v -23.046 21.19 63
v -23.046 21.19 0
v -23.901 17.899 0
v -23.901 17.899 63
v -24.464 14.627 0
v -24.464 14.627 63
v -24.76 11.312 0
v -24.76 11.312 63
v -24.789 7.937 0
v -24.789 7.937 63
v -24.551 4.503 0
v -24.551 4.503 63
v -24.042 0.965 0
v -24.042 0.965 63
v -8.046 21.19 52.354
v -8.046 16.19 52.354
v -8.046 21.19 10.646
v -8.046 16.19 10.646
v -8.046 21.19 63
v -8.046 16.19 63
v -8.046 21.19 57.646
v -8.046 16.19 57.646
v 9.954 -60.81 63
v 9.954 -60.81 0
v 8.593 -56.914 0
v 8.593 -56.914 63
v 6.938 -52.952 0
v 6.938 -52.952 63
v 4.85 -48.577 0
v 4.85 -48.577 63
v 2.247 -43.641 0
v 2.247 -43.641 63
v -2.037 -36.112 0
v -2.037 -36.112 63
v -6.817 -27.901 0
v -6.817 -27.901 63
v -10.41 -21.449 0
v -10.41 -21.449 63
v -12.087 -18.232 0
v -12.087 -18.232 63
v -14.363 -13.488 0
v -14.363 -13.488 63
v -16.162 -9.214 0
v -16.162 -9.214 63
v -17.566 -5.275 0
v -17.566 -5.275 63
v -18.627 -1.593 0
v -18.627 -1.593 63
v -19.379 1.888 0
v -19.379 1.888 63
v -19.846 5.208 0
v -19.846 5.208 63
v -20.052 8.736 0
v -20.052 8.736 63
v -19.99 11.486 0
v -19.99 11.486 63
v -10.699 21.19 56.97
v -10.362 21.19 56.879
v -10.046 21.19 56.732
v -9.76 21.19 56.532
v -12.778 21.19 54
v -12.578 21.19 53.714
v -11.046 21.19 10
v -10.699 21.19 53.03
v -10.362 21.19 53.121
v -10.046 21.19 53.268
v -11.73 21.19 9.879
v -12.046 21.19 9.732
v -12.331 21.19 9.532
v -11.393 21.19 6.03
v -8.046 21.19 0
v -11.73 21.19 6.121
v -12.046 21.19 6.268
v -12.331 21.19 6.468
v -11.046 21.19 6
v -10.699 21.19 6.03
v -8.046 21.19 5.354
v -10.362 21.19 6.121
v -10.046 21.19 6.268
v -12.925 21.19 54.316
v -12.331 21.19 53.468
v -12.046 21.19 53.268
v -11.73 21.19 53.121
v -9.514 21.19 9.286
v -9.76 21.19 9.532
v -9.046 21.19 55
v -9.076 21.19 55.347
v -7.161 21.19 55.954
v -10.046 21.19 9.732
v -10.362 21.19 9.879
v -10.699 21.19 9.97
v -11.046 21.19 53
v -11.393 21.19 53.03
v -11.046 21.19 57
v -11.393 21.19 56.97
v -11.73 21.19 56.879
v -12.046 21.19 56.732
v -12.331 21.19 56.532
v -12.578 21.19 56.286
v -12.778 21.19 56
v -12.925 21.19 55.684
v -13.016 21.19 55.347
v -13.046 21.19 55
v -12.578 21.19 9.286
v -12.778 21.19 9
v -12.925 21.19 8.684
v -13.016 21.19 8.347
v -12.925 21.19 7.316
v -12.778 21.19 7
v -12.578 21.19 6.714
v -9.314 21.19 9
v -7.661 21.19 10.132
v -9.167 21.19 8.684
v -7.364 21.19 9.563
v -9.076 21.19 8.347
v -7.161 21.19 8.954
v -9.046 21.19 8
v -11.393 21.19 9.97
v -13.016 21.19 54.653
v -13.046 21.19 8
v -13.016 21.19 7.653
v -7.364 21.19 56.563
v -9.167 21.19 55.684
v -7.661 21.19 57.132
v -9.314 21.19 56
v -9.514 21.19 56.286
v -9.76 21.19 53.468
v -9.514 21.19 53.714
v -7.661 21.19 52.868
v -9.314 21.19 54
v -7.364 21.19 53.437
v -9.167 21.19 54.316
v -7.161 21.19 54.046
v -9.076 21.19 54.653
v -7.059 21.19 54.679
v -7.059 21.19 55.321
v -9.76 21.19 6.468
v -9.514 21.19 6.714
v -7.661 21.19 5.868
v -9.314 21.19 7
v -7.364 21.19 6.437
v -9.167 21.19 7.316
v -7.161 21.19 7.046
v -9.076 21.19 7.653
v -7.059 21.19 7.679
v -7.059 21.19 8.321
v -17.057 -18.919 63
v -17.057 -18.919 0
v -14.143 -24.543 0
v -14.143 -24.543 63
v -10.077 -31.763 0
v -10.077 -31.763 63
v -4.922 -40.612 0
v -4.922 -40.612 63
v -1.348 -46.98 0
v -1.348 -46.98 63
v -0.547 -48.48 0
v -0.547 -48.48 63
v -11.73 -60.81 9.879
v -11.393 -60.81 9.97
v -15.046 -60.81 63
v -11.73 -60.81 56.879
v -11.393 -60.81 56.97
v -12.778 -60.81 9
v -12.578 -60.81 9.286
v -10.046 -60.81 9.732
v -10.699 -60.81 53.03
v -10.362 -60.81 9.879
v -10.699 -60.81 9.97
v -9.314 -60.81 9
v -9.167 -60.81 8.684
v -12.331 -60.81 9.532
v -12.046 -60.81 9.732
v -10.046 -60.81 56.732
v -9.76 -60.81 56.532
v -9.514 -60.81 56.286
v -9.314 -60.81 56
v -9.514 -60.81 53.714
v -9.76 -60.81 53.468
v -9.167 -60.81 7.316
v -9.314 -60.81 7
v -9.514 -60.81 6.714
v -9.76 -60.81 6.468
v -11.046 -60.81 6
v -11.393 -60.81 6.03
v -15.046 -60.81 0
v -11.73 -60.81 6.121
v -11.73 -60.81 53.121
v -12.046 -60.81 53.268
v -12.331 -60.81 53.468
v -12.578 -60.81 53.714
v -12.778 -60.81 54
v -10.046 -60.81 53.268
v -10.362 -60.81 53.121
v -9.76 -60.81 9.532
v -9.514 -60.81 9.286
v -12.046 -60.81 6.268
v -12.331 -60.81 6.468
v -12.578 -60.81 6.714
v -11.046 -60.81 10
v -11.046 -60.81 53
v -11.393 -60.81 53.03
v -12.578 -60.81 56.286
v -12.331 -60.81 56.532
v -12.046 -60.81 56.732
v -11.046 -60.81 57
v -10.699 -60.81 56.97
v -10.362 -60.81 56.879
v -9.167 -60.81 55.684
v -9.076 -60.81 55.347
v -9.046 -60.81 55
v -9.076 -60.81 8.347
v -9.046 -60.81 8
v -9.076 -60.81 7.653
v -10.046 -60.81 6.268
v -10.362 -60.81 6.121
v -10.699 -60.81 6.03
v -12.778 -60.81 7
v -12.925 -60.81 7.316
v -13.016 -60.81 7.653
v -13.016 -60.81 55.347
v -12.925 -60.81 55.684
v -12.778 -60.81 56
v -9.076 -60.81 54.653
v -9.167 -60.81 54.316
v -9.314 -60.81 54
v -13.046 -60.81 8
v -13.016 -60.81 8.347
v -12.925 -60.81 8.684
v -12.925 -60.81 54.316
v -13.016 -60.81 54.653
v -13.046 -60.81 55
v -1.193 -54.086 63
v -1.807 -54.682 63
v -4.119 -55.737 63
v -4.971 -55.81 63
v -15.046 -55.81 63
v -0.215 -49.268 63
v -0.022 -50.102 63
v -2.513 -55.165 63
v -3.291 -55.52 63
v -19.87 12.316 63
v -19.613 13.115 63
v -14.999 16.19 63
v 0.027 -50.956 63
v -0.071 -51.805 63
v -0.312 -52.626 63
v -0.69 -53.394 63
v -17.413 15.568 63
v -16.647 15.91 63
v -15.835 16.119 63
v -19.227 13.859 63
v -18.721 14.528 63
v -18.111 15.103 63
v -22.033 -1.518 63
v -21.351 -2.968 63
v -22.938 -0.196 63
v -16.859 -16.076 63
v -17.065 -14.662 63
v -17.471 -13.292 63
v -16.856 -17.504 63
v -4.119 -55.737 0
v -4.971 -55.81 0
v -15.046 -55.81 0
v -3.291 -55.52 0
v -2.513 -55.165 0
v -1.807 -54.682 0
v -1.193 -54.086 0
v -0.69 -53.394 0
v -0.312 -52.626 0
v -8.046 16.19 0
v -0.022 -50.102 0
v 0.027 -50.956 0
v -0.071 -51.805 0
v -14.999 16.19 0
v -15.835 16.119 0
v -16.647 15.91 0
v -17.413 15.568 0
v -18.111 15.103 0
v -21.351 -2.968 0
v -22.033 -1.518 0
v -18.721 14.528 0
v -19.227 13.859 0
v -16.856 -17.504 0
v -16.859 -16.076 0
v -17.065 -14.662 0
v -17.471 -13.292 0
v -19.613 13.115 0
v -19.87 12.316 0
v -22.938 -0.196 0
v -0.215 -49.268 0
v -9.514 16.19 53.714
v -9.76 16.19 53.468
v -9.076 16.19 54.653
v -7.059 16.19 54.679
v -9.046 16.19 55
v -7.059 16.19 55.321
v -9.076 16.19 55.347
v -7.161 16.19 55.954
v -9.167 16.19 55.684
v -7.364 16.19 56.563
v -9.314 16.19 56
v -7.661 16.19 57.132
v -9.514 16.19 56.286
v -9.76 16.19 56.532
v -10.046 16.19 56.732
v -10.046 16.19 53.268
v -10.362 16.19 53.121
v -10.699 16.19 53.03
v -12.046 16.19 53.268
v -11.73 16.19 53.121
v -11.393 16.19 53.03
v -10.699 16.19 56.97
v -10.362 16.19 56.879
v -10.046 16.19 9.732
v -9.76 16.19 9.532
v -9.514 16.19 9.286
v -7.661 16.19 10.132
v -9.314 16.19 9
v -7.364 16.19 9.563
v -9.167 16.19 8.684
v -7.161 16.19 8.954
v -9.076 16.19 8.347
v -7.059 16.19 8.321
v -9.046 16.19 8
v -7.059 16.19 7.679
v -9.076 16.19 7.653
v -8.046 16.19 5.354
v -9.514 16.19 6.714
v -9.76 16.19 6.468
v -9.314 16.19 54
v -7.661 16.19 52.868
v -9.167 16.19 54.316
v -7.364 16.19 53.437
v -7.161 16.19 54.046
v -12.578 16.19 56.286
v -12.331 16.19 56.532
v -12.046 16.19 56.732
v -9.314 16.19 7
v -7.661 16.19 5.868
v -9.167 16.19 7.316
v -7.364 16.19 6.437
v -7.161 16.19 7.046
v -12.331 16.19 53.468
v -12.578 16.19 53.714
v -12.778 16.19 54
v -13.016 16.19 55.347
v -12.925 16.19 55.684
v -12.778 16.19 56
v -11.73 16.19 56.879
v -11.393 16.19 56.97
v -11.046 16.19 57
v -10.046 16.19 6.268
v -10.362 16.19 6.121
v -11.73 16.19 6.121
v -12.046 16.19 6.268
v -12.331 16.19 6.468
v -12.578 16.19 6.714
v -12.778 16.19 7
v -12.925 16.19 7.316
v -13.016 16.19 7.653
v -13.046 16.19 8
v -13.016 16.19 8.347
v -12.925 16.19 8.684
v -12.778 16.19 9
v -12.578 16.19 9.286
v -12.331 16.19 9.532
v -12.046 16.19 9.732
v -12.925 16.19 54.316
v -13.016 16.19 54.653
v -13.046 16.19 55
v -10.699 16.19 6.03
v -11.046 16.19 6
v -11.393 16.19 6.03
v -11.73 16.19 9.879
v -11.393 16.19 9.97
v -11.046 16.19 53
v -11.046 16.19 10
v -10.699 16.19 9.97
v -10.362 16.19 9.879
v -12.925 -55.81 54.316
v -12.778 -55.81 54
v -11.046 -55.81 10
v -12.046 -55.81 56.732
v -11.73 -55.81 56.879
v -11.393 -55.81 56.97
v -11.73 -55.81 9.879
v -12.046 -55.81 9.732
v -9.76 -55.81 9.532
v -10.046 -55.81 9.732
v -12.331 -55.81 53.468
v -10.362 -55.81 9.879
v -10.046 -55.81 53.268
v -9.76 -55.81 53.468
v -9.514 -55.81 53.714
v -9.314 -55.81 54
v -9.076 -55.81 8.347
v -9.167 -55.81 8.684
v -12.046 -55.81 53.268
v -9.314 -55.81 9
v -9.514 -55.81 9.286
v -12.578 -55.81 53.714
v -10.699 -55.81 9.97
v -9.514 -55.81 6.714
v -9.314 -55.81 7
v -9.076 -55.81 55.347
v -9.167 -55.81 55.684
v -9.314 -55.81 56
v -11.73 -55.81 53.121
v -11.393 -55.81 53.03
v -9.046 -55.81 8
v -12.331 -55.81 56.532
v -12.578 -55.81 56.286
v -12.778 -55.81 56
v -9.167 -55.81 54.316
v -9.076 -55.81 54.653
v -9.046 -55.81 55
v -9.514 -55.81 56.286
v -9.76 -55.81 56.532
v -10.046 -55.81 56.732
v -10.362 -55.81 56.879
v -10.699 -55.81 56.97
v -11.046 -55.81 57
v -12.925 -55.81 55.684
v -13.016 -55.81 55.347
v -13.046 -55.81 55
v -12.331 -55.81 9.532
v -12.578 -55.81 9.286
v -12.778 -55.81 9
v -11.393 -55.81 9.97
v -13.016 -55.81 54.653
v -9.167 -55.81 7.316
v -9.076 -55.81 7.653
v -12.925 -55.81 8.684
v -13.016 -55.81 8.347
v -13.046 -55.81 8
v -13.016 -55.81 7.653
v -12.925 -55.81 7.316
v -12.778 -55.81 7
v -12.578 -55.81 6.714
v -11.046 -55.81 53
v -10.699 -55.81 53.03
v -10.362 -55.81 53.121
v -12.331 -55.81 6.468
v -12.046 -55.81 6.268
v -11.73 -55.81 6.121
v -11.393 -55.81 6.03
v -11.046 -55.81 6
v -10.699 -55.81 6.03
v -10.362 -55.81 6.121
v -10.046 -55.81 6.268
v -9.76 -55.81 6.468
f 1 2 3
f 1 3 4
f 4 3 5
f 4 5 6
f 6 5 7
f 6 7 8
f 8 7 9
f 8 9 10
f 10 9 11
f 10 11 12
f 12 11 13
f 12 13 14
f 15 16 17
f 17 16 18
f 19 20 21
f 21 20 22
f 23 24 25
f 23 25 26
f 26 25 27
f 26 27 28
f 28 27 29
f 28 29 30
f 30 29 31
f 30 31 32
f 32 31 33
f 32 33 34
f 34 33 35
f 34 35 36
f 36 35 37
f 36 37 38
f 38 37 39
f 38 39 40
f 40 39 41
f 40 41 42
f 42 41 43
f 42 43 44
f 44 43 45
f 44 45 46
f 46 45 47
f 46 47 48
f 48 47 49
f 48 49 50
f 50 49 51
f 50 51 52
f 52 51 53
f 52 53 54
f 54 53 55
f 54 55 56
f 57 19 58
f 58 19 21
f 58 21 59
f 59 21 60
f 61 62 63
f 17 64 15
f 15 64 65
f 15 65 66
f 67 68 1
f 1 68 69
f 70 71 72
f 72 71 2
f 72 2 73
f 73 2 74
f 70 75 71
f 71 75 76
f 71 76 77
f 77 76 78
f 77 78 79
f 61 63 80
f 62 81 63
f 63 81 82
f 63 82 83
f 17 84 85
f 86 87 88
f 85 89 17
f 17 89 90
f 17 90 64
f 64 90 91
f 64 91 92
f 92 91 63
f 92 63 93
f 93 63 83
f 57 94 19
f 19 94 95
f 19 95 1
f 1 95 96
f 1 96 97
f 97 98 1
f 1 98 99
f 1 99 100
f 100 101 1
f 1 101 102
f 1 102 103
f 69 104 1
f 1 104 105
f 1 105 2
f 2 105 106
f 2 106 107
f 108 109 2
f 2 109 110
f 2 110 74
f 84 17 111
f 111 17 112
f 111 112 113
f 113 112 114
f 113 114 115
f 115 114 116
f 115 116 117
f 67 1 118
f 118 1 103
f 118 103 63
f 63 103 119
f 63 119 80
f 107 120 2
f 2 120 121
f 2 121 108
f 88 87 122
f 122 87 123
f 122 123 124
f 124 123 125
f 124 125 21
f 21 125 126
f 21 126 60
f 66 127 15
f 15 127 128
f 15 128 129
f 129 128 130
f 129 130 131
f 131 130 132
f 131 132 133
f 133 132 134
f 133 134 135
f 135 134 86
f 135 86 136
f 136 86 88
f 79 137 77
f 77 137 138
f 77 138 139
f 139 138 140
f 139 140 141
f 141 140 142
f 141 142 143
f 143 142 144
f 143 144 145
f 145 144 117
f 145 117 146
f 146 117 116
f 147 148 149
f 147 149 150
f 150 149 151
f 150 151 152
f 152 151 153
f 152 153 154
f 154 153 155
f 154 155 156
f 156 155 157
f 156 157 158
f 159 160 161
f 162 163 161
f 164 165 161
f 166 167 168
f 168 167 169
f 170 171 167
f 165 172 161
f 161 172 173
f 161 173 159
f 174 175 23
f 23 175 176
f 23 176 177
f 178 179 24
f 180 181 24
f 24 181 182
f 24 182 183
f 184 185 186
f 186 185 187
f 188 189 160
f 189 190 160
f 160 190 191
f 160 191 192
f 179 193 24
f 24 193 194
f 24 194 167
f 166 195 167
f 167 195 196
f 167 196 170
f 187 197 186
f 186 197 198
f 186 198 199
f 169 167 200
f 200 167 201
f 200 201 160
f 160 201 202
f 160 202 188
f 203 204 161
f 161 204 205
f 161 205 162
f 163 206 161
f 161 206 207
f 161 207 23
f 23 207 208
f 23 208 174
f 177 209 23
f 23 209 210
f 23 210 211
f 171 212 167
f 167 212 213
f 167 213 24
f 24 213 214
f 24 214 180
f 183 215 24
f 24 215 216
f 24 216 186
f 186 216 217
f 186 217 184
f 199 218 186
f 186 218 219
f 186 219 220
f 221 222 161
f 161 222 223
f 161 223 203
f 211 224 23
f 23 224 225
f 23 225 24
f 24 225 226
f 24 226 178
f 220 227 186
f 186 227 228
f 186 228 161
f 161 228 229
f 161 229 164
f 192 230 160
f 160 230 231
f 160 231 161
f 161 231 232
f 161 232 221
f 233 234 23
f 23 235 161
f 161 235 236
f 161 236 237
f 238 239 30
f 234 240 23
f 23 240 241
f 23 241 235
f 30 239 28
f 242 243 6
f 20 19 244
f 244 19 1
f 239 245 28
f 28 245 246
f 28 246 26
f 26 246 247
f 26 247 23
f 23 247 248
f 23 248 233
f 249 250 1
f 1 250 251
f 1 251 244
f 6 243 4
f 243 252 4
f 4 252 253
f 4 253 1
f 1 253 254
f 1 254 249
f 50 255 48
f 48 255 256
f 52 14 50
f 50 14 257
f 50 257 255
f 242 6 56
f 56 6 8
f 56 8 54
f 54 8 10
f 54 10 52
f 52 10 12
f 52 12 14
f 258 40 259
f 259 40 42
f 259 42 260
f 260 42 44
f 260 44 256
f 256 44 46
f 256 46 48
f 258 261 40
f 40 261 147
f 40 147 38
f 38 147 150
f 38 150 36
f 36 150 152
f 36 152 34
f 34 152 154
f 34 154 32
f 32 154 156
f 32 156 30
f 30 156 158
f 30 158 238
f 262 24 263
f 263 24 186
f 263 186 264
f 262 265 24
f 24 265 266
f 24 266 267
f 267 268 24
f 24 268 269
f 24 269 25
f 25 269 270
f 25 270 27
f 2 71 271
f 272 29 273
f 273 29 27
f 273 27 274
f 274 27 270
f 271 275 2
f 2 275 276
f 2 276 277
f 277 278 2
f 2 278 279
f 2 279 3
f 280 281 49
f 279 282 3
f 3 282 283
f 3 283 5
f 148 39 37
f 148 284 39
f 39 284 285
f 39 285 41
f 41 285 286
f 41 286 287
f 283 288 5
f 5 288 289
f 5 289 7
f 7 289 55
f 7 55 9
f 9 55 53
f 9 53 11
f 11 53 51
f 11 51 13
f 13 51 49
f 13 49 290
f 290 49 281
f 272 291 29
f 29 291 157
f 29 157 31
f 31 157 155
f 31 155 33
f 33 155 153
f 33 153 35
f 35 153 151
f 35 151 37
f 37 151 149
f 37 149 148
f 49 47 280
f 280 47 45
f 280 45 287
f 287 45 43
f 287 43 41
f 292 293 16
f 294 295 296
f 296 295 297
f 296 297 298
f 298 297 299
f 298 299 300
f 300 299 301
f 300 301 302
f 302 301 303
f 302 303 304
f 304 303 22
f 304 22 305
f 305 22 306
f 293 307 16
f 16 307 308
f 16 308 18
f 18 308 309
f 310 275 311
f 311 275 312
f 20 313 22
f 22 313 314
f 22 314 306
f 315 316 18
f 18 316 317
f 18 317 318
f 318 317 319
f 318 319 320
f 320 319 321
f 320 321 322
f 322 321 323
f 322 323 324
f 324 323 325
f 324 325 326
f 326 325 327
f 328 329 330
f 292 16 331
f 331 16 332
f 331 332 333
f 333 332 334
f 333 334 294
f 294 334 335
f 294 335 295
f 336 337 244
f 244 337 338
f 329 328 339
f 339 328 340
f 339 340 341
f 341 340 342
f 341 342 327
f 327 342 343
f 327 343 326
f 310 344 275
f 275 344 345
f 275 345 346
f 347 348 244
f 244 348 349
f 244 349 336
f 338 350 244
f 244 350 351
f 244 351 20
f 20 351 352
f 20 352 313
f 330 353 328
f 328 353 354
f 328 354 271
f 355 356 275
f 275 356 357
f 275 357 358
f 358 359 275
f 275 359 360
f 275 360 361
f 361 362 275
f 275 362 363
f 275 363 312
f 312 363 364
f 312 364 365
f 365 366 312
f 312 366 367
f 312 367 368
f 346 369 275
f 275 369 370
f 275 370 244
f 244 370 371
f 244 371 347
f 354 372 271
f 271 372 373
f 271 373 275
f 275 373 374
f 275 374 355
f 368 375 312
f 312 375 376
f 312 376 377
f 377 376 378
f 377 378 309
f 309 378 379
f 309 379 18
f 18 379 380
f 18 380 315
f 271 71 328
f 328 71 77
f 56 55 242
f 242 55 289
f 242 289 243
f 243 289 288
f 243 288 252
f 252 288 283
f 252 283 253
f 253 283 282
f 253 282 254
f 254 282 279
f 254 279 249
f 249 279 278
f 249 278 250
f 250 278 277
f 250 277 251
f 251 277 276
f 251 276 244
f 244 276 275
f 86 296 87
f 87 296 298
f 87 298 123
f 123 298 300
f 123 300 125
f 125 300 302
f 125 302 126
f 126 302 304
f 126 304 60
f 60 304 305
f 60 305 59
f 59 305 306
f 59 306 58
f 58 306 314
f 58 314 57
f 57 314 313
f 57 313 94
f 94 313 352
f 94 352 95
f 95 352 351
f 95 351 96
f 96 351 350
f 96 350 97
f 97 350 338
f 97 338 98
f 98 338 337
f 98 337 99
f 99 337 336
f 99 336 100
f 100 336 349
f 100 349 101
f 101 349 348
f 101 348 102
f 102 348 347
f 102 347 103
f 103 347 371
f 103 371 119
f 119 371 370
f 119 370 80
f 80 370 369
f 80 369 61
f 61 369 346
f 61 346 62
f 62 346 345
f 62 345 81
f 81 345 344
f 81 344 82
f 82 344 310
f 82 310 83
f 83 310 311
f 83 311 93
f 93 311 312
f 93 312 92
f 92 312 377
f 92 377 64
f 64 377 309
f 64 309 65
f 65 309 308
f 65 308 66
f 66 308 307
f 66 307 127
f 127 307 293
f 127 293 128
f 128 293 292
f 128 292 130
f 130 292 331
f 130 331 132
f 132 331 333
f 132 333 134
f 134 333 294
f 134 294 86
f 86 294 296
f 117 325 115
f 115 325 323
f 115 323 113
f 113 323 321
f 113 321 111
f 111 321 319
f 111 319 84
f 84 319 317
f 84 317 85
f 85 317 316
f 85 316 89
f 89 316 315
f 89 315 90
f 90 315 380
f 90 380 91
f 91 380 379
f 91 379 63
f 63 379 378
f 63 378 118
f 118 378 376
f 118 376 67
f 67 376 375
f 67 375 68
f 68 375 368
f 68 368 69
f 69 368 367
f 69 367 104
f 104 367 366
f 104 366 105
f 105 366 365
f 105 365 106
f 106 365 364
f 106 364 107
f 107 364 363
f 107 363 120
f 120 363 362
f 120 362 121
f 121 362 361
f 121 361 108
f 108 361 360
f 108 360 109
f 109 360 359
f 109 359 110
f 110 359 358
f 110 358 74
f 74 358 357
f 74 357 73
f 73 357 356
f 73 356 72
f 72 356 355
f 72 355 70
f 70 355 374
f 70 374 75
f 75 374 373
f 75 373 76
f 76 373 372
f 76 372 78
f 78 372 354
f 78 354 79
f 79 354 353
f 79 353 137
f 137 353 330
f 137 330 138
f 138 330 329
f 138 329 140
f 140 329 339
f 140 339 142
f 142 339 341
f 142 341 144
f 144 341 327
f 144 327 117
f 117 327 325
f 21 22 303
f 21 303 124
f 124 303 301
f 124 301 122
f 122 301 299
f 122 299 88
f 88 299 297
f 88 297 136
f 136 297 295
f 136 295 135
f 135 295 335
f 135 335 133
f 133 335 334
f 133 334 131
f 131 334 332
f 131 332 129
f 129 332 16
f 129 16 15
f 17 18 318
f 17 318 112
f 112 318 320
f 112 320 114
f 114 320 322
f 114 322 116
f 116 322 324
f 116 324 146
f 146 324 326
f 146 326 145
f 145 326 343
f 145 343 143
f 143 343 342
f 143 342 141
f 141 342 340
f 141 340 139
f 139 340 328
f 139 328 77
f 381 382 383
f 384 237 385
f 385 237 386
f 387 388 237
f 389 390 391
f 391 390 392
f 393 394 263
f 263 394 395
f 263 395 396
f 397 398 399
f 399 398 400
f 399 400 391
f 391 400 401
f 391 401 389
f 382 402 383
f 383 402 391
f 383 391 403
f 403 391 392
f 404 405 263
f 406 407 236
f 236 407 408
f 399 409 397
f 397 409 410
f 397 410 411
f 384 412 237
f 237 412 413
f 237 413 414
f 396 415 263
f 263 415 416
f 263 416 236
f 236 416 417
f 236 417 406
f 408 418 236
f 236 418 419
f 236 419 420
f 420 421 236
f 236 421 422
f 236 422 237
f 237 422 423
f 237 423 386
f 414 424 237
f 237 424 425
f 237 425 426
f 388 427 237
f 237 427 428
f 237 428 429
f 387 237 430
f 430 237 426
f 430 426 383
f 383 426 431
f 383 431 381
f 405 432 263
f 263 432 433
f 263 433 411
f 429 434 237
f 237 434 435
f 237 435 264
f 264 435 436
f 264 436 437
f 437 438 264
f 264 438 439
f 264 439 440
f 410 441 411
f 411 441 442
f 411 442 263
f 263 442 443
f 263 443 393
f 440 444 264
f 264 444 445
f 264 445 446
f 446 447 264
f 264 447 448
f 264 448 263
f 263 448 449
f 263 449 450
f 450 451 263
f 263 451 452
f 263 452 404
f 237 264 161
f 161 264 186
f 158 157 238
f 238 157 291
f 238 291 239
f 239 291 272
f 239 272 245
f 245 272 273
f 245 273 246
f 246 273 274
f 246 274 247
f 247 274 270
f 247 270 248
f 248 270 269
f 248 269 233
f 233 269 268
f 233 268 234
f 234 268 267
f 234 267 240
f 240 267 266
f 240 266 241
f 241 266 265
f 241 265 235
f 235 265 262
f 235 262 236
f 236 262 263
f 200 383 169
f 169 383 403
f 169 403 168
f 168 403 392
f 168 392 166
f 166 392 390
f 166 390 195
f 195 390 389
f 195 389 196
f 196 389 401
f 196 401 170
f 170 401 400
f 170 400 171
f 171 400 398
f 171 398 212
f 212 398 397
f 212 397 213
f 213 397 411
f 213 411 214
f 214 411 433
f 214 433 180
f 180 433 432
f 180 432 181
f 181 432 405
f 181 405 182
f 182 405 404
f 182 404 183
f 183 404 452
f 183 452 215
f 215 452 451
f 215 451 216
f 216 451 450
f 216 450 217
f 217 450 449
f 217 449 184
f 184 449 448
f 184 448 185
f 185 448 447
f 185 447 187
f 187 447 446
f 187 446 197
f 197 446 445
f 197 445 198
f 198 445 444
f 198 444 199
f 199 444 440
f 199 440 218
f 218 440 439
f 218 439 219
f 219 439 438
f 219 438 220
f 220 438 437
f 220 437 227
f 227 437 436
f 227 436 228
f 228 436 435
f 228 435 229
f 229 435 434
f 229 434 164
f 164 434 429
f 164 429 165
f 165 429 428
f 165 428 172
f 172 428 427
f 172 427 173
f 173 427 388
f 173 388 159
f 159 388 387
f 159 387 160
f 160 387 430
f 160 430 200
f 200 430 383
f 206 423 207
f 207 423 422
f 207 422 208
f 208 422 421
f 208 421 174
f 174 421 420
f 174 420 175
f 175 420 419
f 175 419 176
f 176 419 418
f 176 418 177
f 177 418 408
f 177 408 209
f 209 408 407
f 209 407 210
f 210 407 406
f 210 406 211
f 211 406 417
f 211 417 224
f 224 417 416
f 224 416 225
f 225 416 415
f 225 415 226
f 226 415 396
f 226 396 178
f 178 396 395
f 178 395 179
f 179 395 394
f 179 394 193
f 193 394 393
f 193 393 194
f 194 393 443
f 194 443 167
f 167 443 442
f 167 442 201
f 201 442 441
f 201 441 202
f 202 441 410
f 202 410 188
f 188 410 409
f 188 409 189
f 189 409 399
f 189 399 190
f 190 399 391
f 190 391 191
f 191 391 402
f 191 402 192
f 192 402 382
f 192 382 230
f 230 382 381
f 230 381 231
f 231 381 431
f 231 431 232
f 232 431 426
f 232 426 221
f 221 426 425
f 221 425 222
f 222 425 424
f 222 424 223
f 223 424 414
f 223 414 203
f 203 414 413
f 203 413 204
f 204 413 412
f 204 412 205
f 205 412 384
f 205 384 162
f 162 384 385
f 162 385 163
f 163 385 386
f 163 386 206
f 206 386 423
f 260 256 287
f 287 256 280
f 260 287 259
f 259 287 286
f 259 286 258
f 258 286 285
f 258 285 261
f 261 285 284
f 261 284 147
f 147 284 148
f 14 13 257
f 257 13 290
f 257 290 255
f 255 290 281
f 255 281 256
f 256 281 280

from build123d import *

# Parameters (mm, degrees)
BOSS_EXTRUDE1_DEPTH = 63
SKETCH12_W          = 10
SKETCH12_H          = 63
BOSS_EXTRUDE6_DEPTH = 5
BOSS_EXTRUDE7_DEPTH = 63
FILLET4_R           = 5
SKETCH14_R          = 2
CUT_EXTRUDE5_DEPTH  = 10
SKETCH15_R          = 4
SKETCH15_R_2        = 2
BOSS_EXTRUDE8_DEPTH = 5
SKETCH16_W          = 20
SKETCH16_H          = 63
BOSS_EXTRUDE9_DEPTH = 5
FILLET5_R           = 5
CUT_EXTRUDE6_START  = -5
SKETCH17_R          = 2
CUT_EXTRUDE6_DEPTH  = 5
CUT_EXTRUDE7_DEPTH  = 80
FILLET6_R           = 10


# Read off the part's stored shape, not the designer's step: Boss-Extrude1
with BuildPart() as part:
    # Boss-Extrude1 outline → Boss-Extrude1 (new body)
    with BuildSketch(Plane.XY):
        with BuildLine():
            Line((4.954113003, -60.810475982), (9.954113003, -60.810475982))
            add(Edge.make_bspline(
                [(9.954113003, -60.810475982), (1.787820041, -34.566500255), (-27.991304854, -7.282060069), (-18.045886997, 21.189524018)],
                knots=[0, 0, 0, 0, 1, 1, 1, 1], degree=3))
            Line((-18.045886997, 21.189524018), (-23.045886997, 21.189524018))
            add(Edge.make_bspline(
                [(-23.045886997, 21.189524018), (-23.192896954, 20.707388184), (-23.619107908, 19.21203202), (-24.398456673, 15.722733579), (-24.92594246, 10.71547172), (-24.705924446, 4.806399572), (-23.443795498, -2.907918287), (-20.364970108, -12.213873941), (-15.162719206, -22.926775882), (-9.22446855, -33.283941227), (-4.27318175, -41.652306471), (-0.670405229, -48.178299158), (1.765142475, -52.980809676), (3.499618766, -56.88928979), (4.492016037, -59.486726266), (4.856824136, -60.525956387), (4.954113003, -60.810475982)],
                knots=[0.016302379, 0.016302379, 0.016302379, 0.016302379, 0.03125, 0.0625, 0.125, 0.1875, 0.25, 0.375, 0.5, 0.625, 0.75, 0.8125, 0.875, 0.9375, 0.96875, 0.980543141, 0.980543141, 0.980543141, 0.980543141], degree=3))
        make_face()
    extrude(amount=BOSS_EXTRUDE1_DEPTH)



with BuildPart() as body_2:
    # Sketch12 → Boss-Extrude6 (new body)
    with BuildSketch(Plane(origin=(0, 21.189524018, 0), x_dir=(1, 0, 0), z_dir=(0, 1, 0))):
        with Locations((-13.045886997, -31.5)):
            Rectangle(SKETCH12_W, SKETCH12_H)
    extrude(amount=-BOSS_EXTRUDE6_DEPTH)


with BuildPart() as part_1:
    add(part.part)

    add(body_2.part)  # Boss-Extrude7 merges body 2
    # Sketch13 → Boss-Extrude7 (add)
    with BuildSketch(Plane.XY.offset(63)):
        with BuildLine():
            Line((-18.045886997, 16.189524018), (-18.045886997, 21.189524018))
            add(Edge.make_bspline(
                [(-19.398734896, 16.189524018), (-19.076313221, 17.852122544), (-18.629495341, 19.518779331), (-18.045886997, 21.189524018)],
                knots=[0.941318871, 0.941318871, 0.941318871, 0.941318871, 1, 1, 1, 1], degree=3))
            Line((-19.398734896, 16.189524018), (-18.045886997, 16.189524018))
        make_face()
    extrude(amount=-BOSS_EXTRUDE7_DEPTH)

    # Fillet4
    fillet4_edges = [part_1.edges().sort_by_distance(p)[0] for p in [
        (-19.398734896, 16.189524018, 31.5),
    ]]
    fillet(fillet4_edges, radius=FILLET4_R)

    # Sketch14 → Cut-Extrude5 (cut)
    with BuildSketch(Plane.XZ.offset(-16.189524018)):
        with Locations((-11.045886997, 8)):
            Circle(SKETCH14_R)
        with Locations((-11.045886997, 55)):
            Circle(SKETCH14_R)
    extrude(amount=-CUT_EXTRUDE5_DEPTH, mode=Mode.SUBTRACT)

    # Sketch15 → Boss-Extrude8 (add)
    # profile 1 of 2: a face of its own
    with BuildSketch(Plane.XZ.offset(-16.189524018)):
        with Locations((-11.045886997, 55)):
            Circle(SKETCH15_R)
        with Locations((-11.045886997, 55)):
            Circle(SKETCH15_R_2, mode=Mode.SUBTRACT)
    # profile 2 of 2: a face of its own
    with BuildSketch(Plane.XZ.offset(-16.189524018)):
        with Locations((-11.045886997, 8)):
            Circle(SKETCH15_R)
        with Locations((-11.045886997, 8)):
            Circle(SKETCH15_R_2, mode=Mode.SUBTRACT)
    extrude(amount=-BOSS_EXTRUDE8_DEPTH)

    # Sketch16 → Boss-Extrude9 (add)
    with BuildSketch(Plane.XZ.offset(60.810475982)):
        with Locations((-5.045886997, 31.5)):
            Rectangle(SKETCH16_W, SKETCH16_H)
    extrude(amount=-BOSS_EXTRUDE9_DEPTH)

    # Fillet5
    fillet5_edges = [part_1.edges().sort_by_distance(p)[0] for p in [
        (3.003762593, -55.810475982, 31.5),
    ]]
    fillet(fillet5_edges, radius=FILLET5_R)

    # Sketch17 → Cut-Extrude6 (cut)
    with BuildSketch(Plane(origin=(0, -55.810475982, 0), x_dir=(1, 0, 0), z_dir=(0, 1, 0)).offset(CUT_EXTRUDE6_START)):
        with Locations((-11.045886997, -55)):
            Circle(SKETCH17_R)
        with Locations((-11.045886997, -8)):
            Circle(SKETCH17_R)
    extrude(amount=CUT_EXTRUDE6_DEPTH, mode=Mode.SUBTRACT)

    # Sketch18 → Cut-Extrude7 (cut)
    with BuildSketch(Plane(origin=(0, 0, 0), x_dir=(-1, 0, 0), z_dir=(0, 0, -1))):
        Polygon((23.045886997, 1.542241973), (27.88763941, -1.261096589), (21.516415404, -20.247344126), (15.527464839, -18.463401404), align=None)
    extrude(amount=-CUT_EXTRUDE7_DEPTH, mode=Mode.SUBTRACT)

    # Fillet6
    # the kernel refuses this fillet: 10 mm, written as the material it adds along each edge
    with BuildSketch(Plane(origin=(-15.527464839, -18.463401404, 0), x_dir=(-0.958385683586268, -0.28547658660016567, 0), z_dir=(0, 0, 1))) as fillet6_piece_1:
        with BuildLine():
            CenterArc((10.361821719, -4.811763892), FILLET6_R, 151.237737935, 32.771900007)
            Line((0.386298698, -5.51100666), (0.186788237, -5.524991515))
            Line((0.186788237, -5.524991515), (-0.19951046, -0.013984855))
            Line((-0.19951046, -0.013984855), (0, 0.2))
            ThreePointArc((0, 0.2), (0.797791872, 0.2), (1.420258984, 0.096235278))
            Line((1.420258984, 0.096235278), (1.595583743, 0))
        make_face()
    extrude(amount=63)
    with BuildSketch(Plane(origin=(-23.045886997, 1.542241973, 0), x_dir=(0.35179225201059605, -0.9360781011354306, 0), z_dir=(0, 0, 1))) as fillet6_piece_2:
        with BuildLine():
            CenterArc((4.818055228, -10), FILLET6_R, 90, 27.571489076)
            Line((0.189505284, -1.1356599), (0.096934285, -0.958373098))
            ThreePointArc((0.096934285, -0.958373098), (-0.102519699, -0.600748389), (-0.197272341, -0.032918439))
            Line((-0.197272341, -0.032918439), (0, 0.2))
            Line((0, 0.2), (4.818055228, 0.2))
            Line((4.818055228, 0.2), (4.818055228, 0))
        make_face()
    extrude(amount=63)


solid = part_1.part
